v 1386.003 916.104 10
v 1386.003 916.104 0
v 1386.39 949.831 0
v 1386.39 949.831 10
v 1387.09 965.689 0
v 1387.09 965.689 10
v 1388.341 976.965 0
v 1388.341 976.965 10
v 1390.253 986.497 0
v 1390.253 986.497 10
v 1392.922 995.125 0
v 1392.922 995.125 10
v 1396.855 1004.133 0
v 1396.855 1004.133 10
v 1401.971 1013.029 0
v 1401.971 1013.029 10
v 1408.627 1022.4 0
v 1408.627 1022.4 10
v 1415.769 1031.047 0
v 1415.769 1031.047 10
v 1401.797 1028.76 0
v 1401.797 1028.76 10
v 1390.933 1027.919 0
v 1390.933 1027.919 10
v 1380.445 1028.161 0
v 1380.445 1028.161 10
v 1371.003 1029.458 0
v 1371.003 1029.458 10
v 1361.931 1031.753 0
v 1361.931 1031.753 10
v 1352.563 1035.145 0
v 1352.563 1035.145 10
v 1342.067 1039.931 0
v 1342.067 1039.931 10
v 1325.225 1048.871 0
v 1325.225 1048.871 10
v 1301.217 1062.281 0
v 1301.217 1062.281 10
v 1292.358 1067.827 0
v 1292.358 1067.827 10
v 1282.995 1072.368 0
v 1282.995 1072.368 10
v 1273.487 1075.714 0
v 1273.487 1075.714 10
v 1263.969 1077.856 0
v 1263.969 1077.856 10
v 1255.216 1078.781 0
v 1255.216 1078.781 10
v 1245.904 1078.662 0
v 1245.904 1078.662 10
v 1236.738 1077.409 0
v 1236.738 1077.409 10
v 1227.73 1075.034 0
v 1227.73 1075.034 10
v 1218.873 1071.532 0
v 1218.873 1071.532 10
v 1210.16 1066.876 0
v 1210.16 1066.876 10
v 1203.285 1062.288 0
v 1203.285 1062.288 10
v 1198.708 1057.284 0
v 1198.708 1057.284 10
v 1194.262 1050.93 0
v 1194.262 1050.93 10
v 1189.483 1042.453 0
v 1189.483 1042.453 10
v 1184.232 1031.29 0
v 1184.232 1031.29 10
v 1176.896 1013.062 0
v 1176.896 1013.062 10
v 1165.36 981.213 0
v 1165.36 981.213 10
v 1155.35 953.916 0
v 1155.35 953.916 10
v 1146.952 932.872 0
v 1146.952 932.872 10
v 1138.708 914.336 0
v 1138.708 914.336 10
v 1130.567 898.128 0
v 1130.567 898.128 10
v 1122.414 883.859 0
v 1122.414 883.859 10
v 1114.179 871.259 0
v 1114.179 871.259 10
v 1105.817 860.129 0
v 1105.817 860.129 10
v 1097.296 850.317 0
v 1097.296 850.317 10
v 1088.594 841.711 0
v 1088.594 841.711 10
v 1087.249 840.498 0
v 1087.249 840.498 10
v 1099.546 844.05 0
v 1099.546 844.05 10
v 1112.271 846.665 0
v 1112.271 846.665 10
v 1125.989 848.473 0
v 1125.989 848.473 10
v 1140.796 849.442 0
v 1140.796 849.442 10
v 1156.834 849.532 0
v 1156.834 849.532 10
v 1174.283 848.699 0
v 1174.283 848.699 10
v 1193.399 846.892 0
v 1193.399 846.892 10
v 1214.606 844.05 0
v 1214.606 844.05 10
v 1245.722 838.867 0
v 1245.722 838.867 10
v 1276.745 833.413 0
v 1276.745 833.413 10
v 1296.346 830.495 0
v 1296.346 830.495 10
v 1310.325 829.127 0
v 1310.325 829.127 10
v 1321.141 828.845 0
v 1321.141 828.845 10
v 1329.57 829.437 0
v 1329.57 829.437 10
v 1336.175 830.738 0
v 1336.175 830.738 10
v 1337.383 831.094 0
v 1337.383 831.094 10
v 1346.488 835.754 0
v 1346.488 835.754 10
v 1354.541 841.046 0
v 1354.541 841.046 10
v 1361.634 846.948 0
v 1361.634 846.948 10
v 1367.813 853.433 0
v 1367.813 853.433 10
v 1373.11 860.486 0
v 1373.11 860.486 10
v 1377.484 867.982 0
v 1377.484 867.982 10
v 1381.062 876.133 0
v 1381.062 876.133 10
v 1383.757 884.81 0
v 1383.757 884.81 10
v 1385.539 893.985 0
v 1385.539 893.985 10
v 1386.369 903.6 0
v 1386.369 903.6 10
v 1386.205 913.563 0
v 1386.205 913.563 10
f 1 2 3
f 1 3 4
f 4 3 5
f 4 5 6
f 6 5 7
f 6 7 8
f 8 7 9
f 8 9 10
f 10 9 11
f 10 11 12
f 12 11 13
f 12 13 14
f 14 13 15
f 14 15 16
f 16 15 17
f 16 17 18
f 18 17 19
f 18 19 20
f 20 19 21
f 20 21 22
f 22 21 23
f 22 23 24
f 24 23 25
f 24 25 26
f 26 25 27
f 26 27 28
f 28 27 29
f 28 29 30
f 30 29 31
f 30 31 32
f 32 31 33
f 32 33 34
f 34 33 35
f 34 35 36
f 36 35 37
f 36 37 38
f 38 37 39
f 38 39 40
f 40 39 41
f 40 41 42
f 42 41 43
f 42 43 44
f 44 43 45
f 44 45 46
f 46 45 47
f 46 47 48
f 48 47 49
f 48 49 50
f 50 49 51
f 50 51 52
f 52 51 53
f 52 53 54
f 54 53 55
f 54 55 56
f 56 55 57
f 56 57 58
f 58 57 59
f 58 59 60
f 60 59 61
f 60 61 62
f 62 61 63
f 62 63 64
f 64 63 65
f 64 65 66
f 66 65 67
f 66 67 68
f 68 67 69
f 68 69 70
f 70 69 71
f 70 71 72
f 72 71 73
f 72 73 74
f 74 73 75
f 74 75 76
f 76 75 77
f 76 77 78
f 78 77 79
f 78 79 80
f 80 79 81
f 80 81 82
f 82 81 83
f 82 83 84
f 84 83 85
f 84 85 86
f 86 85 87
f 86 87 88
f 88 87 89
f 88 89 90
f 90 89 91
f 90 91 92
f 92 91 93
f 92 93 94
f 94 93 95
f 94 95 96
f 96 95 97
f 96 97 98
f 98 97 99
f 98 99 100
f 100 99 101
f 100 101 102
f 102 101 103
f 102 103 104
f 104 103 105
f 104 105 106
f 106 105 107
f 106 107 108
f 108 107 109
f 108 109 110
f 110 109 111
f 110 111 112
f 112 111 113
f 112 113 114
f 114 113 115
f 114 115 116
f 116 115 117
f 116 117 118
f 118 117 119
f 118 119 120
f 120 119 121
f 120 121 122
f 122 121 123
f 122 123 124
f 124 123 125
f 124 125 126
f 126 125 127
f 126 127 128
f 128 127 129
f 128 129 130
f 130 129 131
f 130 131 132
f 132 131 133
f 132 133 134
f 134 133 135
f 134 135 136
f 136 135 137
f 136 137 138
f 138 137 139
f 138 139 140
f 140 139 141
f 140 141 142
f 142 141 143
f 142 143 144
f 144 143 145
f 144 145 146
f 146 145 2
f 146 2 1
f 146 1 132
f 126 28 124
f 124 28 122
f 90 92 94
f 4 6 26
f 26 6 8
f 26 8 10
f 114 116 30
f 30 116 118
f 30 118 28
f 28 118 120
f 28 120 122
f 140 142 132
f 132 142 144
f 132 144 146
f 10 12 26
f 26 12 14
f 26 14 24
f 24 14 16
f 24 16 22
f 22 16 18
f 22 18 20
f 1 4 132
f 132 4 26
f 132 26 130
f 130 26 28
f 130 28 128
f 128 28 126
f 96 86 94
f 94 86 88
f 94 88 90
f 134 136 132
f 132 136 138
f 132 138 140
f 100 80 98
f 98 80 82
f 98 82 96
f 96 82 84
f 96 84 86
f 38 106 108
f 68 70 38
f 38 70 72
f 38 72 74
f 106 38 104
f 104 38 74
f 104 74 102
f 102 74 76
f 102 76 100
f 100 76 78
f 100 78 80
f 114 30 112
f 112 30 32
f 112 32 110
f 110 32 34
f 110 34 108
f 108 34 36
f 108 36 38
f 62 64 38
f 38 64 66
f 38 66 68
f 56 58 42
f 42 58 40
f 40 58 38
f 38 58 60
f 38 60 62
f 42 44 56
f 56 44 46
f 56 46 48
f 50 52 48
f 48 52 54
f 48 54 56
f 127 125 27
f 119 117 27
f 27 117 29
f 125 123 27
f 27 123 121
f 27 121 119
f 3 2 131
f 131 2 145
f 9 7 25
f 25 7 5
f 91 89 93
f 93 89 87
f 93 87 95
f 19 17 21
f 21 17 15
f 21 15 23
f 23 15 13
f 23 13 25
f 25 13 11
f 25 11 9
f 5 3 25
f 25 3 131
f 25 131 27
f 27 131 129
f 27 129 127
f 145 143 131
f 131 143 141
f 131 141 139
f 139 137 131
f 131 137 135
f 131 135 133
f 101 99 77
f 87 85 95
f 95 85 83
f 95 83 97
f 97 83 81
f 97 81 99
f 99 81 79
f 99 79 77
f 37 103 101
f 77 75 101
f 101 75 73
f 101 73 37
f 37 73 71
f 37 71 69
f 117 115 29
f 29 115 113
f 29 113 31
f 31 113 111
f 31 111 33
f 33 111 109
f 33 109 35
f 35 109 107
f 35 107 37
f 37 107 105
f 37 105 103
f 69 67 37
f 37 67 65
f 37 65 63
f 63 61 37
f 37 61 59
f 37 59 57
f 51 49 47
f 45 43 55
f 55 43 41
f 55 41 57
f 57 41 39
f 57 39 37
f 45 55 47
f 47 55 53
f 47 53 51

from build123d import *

# Parameters (mm, degrees)
BOSS_EXTRUDE1_DEPTH = 10


with BuildPart() as part:
    # Sketch1 → Boss-Extrude1 (new body)
    with BuildSketch(Plane.XY):
        with BuildLine():
            add(Edge.make_bspline(
                [(1415.7693798, 1031.046835581), (1367.628210311, 1021.339100434), (1351.545709895, 1034.491042003), (1301.21719942, 1062.281192228)],
                knots=[0, 0, 0, 0, 1, 1, 1, 1], degree=3))
            add(Edge.make_bspline(
                [(1301.21719942, 1062.281192228), (1274.485473897, 1081.017650054), (1237.922941256, 1087.540678103), (1203.284773936, 1062.288290276)],
                knots=[0, 0, 0, 0, 1, 1, 1, 1], degree=3))
            add(Edge.make_bspline(
                [(1203.284773936, 1062.288290276), (1170.198368602, 1031.598934224), (1156.257012178, 901.986996511), (1087.249339763, 840.498155001)],
                knots=[0, 0, 0, 0, 1, 1, 1, 1], degree=3))
            add(Edge.make_bspline(
                [(1337.382589735, 831.093722667), (1294.315235342, 817.612262121), (1174.887236961, 869.867108969), (1087.249339763, 840.498155001)],
                knots=[0, 0, 0, 0, 1, 1, 1, 1], degree=3))
            add(Edge.make_bspline(
                [(1386.002816787, 916.10450747), (1388.993324609, 883.597633363), (1376.501045784, 848.621760854), (1337.382589735, 831.093722667)],
                knots=[0, 0, 0, 0, 1, 1, 1, 1], degree=3))
            add(Edge.make_bspline(
                [(1415.7693798, 1031.046835581), (1383.439340443, 994.079540892), (1386.870038806, 973.589282342), (1386.002816787, 916.10450747)],
                knots=[0, 0, 0, 0, 1, 1, 1, 1], degree=3))
        make_face()
    extrude(amount=BOSS_EXTRUDE1_DEPTH)


solid = part.part
